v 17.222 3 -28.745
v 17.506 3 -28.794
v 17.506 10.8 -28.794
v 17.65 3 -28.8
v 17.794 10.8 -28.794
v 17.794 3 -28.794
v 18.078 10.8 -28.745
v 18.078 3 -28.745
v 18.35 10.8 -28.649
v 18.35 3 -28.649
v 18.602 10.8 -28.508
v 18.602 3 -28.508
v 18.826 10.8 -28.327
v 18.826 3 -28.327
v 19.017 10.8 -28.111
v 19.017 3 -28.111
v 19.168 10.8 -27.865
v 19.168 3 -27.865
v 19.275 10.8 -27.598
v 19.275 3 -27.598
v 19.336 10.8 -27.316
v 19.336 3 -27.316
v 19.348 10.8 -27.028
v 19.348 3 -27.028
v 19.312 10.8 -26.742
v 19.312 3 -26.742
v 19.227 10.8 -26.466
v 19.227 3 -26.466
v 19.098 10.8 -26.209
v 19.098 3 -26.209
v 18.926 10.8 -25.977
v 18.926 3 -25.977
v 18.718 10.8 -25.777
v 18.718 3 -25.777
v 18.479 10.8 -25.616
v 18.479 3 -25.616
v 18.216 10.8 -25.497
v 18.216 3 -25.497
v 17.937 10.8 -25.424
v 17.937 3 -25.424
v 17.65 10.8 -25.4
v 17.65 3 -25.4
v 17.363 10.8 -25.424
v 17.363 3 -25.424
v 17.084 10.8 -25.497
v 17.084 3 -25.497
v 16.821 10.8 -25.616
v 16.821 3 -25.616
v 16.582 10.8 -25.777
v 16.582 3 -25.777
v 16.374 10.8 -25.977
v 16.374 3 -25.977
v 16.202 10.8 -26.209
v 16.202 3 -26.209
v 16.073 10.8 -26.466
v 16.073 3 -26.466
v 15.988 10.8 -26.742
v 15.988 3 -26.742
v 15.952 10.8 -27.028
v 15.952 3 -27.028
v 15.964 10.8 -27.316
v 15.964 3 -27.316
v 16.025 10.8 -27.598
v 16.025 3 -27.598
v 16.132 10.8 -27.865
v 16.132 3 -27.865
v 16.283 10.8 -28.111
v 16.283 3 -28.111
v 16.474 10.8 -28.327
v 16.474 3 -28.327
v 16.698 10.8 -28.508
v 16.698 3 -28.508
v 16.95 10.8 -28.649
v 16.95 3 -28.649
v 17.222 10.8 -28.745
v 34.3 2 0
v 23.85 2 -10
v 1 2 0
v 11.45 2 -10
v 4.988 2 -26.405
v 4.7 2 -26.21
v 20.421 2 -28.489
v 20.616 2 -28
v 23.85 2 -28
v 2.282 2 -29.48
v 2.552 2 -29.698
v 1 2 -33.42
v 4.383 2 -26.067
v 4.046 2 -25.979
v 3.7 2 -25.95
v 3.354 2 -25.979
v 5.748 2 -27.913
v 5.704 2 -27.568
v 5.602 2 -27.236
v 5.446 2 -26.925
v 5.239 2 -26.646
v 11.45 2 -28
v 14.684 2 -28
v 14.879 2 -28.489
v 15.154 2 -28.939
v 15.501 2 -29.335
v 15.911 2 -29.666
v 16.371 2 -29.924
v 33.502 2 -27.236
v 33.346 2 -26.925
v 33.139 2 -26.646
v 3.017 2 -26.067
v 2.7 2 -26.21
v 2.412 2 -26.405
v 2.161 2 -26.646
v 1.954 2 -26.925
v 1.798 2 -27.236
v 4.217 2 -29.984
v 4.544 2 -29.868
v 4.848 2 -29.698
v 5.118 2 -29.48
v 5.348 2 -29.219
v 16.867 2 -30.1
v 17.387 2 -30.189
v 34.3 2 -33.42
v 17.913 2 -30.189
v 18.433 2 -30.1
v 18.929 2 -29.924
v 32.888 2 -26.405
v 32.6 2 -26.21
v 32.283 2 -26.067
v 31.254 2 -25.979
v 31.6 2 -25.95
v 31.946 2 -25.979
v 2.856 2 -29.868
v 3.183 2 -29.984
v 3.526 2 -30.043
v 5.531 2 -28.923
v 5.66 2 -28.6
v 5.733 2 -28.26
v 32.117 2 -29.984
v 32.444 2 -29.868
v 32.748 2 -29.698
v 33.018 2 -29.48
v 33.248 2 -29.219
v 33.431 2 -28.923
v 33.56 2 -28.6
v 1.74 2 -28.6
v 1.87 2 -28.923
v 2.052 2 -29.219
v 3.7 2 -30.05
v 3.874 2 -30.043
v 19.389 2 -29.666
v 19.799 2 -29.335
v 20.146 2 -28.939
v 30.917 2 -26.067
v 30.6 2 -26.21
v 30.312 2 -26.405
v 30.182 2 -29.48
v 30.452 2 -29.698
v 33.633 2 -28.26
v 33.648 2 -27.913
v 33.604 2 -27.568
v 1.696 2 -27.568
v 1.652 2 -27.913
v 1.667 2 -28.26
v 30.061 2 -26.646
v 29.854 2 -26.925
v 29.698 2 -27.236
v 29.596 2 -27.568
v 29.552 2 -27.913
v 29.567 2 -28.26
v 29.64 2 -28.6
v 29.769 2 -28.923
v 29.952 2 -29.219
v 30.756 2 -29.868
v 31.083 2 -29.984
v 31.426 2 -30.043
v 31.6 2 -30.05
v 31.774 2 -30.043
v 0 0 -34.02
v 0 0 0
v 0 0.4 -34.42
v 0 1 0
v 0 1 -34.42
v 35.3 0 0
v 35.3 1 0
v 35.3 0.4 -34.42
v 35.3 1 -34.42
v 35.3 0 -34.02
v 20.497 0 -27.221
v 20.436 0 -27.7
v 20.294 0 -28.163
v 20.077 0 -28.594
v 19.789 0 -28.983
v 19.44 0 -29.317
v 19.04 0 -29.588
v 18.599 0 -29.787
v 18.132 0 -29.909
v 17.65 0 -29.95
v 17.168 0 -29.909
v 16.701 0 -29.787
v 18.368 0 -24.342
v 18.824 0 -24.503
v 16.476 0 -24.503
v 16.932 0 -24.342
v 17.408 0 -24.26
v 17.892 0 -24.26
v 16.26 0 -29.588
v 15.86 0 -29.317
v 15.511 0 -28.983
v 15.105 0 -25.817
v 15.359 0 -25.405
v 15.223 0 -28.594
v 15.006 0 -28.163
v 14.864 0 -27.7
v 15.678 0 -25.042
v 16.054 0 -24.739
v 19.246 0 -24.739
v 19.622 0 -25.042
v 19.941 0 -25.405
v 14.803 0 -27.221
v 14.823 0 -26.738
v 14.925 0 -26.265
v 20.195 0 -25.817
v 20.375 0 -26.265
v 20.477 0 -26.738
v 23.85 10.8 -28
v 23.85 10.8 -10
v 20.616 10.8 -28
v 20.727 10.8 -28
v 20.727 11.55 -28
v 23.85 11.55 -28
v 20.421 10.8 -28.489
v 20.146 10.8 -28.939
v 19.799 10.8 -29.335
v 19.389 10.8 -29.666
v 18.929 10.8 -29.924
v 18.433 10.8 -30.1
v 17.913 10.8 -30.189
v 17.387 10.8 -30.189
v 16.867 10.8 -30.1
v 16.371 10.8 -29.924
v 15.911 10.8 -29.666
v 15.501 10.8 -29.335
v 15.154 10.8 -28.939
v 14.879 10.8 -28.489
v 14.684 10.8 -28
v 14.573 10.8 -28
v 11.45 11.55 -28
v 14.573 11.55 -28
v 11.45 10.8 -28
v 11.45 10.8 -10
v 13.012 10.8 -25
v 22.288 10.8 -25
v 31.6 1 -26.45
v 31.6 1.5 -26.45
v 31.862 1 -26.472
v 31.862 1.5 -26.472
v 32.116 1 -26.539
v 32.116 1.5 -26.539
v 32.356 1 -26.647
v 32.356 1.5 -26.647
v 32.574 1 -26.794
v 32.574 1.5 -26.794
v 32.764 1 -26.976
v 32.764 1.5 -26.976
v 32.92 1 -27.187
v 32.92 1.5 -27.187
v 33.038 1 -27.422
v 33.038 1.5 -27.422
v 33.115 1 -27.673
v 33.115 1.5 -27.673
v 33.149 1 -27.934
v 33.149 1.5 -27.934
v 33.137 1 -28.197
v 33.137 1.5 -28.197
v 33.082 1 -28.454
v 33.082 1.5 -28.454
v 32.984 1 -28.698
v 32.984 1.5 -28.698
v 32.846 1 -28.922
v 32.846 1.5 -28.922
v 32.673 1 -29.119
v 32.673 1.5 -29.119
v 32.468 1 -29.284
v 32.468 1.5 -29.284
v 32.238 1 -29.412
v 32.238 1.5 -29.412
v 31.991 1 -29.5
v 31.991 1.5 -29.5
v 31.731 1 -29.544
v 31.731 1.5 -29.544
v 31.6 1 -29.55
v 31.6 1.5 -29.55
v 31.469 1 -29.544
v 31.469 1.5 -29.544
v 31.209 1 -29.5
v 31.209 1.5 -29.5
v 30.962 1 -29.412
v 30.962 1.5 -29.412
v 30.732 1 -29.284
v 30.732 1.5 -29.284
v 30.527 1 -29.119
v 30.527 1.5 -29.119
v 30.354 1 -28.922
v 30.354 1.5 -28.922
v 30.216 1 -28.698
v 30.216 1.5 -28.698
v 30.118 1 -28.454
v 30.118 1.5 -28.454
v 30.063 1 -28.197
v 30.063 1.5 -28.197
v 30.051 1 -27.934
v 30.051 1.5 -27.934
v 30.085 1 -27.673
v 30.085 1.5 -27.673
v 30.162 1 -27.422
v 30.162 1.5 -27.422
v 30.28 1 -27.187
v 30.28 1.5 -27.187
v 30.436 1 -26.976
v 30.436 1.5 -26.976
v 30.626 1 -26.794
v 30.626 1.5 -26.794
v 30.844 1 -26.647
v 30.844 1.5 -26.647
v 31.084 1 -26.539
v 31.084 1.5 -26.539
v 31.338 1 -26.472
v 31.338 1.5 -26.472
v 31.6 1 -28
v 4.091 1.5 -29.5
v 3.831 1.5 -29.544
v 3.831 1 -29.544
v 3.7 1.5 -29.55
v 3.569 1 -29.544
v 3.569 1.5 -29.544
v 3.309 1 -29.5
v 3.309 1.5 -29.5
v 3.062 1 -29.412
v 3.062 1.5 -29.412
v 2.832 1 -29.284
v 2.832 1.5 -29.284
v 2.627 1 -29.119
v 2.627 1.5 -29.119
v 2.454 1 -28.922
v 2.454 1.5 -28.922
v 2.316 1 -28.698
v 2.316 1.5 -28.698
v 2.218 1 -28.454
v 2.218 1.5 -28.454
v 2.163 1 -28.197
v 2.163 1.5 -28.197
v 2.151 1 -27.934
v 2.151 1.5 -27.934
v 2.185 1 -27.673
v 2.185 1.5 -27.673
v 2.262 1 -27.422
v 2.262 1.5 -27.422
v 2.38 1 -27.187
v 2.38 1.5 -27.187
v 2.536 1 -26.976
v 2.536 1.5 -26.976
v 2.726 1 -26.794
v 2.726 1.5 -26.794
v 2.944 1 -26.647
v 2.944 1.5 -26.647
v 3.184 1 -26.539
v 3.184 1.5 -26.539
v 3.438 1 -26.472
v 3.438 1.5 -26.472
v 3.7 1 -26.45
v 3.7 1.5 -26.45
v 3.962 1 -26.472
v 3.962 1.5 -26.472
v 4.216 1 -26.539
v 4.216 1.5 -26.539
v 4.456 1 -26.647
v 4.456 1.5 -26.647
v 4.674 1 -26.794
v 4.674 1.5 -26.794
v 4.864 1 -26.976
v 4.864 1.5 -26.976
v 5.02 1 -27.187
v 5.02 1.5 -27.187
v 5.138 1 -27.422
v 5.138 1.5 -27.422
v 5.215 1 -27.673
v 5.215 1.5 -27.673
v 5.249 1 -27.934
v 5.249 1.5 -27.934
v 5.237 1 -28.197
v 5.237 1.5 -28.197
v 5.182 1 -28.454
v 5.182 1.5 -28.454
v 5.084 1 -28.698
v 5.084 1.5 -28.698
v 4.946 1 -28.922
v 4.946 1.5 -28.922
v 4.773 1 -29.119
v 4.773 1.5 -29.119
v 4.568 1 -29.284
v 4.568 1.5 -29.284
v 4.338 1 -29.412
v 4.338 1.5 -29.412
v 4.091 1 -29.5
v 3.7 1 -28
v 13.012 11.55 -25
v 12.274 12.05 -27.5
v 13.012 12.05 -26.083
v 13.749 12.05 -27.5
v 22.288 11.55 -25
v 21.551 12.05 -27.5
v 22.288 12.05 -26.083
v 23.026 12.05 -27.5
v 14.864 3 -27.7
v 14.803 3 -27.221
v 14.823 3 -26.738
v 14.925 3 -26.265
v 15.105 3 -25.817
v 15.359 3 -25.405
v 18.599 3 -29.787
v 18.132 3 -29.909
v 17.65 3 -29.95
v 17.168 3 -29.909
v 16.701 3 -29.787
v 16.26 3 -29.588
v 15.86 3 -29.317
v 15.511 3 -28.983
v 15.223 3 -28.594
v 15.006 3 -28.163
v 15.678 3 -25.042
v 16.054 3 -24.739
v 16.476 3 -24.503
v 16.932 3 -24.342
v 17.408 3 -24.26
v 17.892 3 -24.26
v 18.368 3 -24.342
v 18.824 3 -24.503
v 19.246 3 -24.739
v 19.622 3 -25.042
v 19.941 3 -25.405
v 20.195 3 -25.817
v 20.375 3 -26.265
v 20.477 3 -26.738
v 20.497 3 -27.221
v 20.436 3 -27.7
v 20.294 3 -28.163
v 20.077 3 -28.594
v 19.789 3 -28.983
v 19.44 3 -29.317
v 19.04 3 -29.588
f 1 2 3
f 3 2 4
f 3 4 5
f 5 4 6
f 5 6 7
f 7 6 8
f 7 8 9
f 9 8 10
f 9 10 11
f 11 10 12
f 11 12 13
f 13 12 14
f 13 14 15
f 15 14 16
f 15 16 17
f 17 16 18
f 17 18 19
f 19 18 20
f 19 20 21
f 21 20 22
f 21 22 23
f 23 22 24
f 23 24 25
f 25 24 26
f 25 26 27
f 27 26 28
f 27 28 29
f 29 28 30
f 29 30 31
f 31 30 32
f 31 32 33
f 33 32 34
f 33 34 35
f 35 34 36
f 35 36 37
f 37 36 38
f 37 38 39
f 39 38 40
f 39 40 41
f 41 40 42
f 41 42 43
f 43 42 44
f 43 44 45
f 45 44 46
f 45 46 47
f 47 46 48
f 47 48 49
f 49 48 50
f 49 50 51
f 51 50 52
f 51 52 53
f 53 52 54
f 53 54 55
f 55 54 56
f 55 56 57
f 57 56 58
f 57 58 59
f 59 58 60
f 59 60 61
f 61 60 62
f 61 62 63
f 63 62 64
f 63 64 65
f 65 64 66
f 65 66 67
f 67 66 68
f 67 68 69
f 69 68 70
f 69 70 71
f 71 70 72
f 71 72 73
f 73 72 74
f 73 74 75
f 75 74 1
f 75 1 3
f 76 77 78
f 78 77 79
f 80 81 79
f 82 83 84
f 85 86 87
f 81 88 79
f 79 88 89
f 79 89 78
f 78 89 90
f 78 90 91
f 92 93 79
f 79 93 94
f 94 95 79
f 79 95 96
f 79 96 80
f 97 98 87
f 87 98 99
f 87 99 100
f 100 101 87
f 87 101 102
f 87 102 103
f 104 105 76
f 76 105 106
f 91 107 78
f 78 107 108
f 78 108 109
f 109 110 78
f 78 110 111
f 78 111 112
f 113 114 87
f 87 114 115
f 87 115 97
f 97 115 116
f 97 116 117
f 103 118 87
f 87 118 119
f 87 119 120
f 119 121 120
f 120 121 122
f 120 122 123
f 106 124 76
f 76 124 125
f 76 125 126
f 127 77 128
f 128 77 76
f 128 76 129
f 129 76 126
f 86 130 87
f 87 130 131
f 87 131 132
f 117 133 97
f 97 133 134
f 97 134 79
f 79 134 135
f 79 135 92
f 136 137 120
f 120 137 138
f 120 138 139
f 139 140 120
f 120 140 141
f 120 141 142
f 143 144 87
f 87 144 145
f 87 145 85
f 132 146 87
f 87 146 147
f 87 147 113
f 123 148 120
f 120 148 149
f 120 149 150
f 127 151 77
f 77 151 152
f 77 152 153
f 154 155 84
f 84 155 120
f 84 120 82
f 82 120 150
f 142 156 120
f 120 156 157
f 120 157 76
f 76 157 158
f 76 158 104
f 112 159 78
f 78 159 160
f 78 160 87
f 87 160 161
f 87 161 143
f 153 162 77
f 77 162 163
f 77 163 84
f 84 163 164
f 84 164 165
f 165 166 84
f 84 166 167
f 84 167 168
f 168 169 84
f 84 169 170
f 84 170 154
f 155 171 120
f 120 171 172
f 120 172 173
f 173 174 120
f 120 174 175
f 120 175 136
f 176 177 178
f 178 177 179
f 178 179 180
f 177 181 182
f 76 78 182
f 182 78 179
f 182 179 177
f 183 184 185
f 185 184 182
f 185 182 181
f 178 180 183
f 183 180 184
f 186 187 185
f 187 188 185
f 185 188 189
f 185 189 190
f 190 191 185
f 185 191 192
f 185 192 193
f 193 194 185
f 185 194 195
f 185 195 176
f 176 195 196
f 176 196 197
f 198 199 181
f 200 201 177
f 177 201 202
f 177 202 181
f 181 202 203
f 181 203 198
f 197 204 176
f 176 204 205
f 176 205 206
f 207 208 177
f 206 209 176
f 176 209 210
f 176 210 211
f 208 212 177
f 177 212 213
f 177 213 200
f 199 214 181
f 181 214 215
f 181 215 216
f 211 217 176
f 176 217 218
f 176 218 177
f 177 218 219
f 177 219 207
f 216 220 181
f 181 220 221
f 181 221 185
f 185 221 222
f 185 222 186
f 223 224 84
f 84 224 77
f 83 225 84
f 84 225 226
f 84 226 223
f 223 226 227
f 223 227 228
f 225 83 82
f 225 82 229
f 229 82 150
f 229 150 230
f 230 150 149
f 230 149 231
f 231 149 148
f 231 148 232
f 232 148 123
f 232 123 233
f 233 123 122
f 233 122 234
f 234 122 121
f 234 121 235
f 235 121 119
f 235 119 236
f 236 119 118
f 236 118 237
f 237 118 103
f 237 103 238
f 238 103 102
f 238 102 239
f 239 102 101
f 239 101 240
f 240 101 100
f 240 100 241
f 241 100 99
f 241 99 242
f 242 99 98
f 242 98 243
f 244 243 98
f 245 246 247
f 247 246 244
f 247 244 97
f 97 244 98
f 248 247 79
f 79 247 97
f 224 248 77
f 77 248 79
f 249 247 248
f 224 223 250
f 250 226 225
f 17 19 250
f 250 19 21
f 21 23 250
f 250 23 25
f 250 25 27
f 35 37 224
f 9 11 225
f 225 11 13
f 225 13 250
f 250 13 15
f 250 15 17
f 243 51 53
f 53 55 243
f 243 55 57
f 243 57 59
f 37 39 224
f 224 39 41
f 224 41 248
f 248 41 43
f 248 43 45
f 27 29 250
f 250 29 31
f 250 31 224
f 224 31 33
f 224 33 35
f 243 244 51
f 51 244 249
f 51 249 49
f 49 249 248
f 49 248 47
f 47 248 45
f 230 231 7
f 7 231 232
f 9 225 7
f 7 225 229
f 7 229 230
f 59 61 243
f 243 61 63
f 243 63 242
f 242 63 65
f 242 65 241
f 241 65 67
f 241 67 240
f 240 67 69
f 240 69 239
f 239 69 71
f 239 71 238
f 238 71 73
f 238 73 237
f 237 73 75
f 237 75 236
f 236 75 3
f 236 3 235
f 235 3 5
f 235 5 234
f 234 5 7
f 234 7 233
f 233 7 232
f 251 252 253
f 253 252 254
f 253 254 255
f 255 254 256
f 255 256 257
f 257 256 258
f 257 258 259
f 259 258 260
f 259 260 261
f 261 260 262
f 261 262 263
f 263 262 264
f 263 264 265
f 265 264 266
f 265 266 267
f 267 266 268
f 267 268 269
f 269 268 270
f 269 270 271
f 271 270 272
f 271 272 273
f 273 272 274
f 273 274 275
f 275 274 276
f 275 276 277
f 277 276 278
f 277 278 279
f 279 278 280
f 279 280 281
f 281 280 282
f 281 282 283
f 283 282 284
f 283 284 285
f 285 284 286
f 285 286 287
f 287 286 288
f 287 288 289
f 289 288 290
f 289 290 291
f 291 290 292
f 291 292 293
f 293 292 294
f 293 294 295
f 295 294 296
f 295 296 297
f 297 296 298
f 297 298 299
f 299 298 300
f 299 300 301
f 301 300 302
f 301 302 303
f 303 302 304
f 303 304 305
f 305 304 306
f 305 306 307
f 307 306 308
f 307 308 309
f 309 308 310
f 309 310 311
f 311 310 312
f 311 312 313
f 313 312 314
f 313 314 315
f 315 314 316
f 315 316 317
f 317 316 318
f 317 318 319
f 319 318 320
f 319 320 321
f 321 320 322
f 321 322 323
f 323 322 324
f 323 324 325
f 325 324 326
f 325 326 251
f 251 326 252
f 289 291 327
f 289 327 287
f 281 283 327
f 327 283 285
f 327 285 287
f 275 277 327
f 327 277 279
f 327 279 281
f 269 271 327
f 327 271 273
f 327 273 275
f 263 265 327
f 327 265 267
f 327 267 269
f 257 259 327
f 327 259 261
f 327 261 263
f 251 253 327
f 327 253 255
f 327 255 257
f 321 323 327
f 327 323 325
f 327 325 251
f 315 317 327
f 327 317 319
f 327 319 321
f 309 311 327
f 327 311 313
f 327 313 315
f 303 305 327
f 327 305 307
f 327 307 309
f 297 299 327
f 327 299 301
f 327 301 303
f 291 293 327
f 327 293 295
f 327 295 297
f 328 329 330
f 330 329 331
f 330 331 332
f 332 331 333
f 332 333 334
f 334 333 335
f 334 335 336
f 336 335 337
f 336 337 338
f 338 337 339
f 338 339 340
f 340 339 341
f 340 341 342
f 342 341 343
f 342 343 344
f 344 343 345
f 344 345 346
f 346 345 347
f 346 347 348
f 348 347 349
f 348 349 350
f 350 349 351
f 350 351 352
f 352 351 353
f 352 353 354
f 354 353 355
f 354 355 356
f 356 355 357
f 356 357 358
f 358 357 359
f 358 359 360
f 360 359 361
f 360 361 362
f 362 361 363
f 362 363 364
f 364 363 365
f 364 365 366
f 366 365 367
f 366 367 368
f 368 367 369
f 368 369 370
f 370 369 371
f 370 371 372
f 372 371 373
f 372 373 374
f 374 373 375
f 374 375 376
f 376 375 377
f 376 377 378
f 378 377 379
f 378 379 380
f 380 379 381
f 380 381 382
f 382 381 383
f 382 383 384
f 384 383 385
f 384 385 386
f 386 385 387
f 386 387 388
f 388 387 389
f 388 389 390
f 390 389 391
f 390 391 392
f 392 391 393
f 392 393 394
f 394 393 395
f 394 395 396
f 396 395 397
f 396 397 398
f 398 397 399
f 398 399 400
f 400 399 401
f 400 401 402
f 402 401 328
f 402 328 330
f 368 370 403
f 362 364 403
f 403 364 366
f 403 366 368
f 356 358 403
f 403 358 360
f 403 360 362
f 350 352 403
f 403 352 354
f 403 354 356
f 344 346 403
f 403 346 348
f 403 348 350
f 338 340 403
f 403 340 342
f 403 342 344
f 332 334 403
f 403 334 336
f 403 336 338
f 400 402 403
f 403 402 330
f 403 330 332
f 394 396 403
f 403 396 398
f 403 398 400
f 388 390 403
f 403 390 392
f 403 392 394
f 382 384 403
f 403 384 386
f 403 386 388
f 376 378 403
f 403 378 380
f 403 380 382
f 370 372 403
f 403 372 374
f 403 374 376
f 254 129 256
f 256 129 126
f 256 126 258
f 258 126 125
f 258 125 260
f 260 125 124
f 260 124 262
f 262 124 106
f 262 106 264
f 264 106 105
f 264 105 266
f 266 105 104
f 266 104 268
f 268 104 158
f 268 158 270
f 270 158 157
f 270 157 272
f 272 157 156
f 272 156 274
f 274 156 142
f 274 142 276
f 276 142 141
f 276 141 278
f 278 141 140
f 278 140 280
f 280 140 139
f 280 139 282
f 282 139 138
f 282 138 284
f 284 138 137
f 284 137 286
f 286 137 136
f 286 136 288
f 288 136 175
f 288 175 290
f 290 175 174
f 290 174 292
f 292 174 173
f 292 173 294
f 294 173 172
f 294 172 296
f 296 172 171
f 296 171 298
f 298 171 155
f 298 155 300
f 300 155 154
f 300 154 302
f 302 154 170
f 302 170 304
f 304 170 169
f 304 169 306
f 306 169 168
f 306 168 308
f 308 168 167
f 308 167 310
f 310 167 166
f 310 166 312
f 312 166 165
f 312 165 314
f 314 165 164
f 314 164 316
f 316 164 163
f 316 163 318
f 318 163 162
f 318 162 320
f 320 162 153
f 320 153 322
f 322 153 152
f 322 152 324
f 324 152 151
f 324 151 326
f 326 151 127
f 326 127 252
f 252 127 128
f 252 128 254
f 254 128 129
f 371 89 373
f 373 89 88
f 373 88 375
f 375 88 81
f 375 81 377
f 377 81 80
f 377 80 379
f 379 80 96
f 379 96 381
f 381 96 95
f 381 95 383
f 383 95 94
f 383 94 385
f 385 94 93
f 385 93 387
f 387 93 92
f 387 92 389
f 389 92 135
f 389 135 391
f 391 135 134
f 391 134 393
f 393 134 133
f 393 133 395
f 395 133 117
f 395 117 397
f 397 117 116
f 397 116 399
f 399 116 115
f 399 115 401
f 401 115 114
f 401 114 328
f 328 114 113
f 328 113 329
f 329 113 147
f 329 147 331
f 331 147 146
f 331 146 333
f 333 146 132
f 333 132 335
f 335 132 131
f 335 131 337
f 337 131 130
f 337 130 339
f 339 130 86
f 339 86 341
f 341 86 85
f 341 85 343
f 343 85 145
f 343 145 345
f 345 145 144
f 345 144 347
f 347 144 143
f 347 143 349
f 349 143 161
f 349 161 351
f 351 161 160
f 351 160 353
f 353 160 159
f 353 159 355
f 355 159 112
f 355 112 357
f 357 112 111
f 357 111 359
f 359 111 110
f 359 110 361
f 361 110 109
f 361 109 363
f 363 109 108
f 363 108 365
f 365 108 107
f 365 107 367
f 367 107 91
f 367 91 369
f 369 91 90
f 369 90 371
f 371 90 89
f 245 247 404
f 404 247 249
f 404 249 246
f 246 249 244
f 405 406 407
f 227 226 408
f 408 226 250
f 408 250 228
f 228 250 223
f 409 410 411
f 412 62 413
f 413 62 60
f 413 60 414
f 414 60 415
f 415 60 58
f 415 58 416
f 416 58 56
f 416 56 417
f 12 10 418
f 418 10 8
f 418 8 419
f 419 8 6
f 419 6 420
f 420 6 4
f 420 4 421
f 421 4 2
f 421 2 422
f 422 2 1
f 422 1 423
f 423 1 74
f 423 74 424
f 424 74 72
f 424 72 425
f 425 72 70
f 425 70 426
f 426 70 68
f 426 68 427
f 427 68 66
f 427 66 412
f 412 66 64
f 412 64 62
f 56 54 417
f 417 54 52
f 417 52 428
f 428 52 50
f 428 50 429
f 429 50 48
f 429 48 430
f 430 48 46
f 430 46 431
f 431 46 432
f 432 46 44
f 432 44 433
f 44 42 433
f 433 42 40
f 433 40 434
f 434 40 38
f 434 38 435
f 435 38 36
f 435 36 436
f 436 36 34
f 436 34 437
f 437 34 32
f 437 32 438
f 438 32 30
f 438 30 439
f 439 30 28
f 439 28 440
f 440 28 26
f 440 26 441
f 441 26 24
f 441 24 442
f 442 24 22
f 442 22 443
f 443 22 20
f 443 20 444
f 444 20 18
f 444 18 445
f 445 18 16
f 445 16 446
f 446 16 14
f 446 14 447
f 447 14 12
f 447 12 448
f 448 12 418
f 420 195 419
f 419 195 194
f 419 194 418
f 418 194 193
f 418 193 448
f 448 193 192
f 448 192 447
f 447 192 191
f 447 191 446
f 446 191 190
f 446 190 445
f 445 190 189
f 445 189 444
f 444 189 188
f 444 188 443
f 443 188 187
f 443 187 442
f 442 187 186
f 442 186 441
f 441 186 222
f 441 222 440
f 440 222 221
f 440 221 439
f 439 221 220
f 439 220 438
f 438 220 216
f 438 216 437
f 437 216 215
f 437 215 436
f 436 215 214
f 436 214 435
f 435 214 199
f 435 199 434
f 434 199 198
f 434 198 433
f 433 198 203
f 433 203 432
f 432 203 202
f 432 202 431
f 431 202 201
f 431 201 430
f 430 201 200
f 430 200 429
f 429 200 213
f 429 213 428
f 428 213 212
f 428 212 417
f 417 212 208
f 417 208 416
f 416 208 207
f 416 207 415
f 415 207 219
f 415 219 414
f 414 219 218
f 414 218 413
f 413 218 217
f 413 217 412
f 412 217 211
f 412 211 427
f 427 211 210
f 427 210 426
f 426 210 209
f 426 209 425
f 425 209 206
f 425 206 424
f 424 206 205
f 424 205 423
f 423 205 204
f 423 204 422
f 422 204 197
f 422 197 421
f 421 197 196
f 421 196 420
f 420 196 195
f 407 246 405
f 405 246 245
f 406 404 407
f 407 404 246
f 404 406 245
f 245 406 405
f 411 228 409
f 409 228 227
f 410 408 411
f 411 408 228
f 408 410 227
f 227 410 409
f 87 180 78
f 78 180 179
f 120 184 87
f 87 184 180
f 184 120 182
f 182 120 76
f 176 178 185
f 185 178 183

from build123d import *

# Parameters (mm, degrees)
SKETCH1_W           = 35.3
SKETCH1_H           = 34.42
BOSS_EXTRUDE1_DEPTH = 2
BOSS_EXTRUDE2_DEPTH = 8.8
SKETCH4_R           = 1.55
CUT_EXTRUDE2_DEPTH  = 1
CHAMFER4_SIZE       = 0.5
BOSS_EXTRUDE3_DEPTH = 1.25
SKETCH7_R           = 1.7
CUT_EXTRUDE6_DEPTH  = 51.472432079
SKETCH6_R           = 2.85
CUT_EXTRUDE5_DEPTH  = 3
CHAMFER5_SIZE       = 0.5
CHAMFER3_SIZE       = 1
CHAMFER6_SIZE       = 0.4


with BuildPart() as part:
    # Sketch1 → Boss-Extrude1 (new body)
    with BuildSketch(Plane(origin=(0, 0, 0), x_dir=(1, 0, 0), z_dir=(0, 1, 0))):
        with Locations((17.65, 17.21)):
            Rectangle(SKETCH1_W, SKETCH1_H)
    extrude(amount=BOSS_EXTRUDE1_DEPTH)

    # Sketch2 → Boss-Extrude2 (add)
    with BuildSketch(Plane(origin=(0, 2, 0), x_dir=(1, 0, 0), z_dir=(0, 1, 0))):
        with BuildLine():
            Line((11.45, 28), (14.683520605, 28))
            ThreePointArc((14.683520605, 28), (17.65, 30.2), (20.616479395, 28))
            Line((20.616479395, 28), (23.85, 28))
            Line((23.85, 28), (23.85, 10))
            Line((23.85, 10), (11.45, 10))
            Line((11.45, 10), (11.45, 28))
        make_face()
    extrude(amount=BOSS_EXTRUDE2_DEPTH)

    # Sketch4 → Cut-Extrude2 (cut)
    with BuildSketch(Plane(origin=(0, 2, 0), x_dir=(1, 0, 0), z_dir=(0, 1, 0))):
        with Locations(Location((3.7, 28, 0), (0, 0, 270))):
            Circle(SKETCH4_R)
        with Locations(Location((31.6, 28, 0), (0, 0, 90))):
            Circle(SKETCH4_R)
    extrude(amount=-CUT_EXTRUDE2_DEPTH, mode=Mode.SUBTRACT)

    # Chamfer4
    chamfer4_edges = [part.edges().sort_by_distance(p)[0] for p in [
        (3.7, 2, -29.55),
        (31.6, 2, -26.45),
    ]]
    chamfer(chamfer4_edges, length=CHAMFER4_SIZE)

    # Sketch3 → Boss-Extrude3 (add)
    with BuildSketch(Plane(origin=(0, 10.8, 0), x_dir=(1, 0, 0), z_dir=(0, 1, 0))):
        Polygon((14.573402303, 28), (13.011701152, 25), (11.45, 28), align=None)
        Polygon((23.85, 28), (22.288298848, 25), (20.726597697, 28), align=None)
    extrude(amount=BOSS_EXTRUDE3_DEPTH)

    # Sketch7 → Cut-Extrude6 (cut, through all)
    with BuildSketch(Plane(origin=(0, 10.8, 0), x_dir=(1, 0, 0), z_dir=(0, 1, 0))):
        with Locations(Location((17.65, 27.1, 0), (0, 0, 270))):
            Circle(SKETCH7_R)
    extrude(amount=-CUT_EXTRUDE6_DEPTH, mode=Mode.SUBTRACT)

    # Sketch6 → Cut-Extrude5 (cut)
    with BuildSketch(Plane.XZ):
        with Locations(Location((17.65, -27.1, 0), (0, 0, 270))):
            Circle(SKETCH6_R)
    extrude(amount=-CUT_EXTRUDE5_DEPTH, mode=Mode.SUBTRACT)

    # Chamfer5
    chamfer5_edges = [part.edges().sort_by_distance(p)[0] for p in [
        (22.288298848, 12.05, -28),
        (21.507448273, 12.05, -26.5),
        (23.069149424, 12.05, -26.5),
        (13.011701152, 12.05, -28),
        (12.230850576, 12.05, -26.5),
        (13.792551727, 12.05, -26.5),
    ]]
    chamfer(chamfer5_edges, length=CHAMFER5_SIZE)

    # Chamfer3
    chamfer3_edges = [part.edges().sort_by_distance(p)[0] for p in [
        (35.3, 2, -17.21),
        (17.65, 2, -34.42),
        (0, 2, -17.21),
    ]]
    chamfer(chamfer3_edges, length=CHAMFER3_SIZE)

    # Chamfer6
    chamfer6_edges = [part.edges().sort_by_distance(p)[0] for p in [
        (17.65, 0, -34.42),
    ]]
    chamfer(chamfer6_edges, length=CHAMFER6_SIZE)


solid = part.part
